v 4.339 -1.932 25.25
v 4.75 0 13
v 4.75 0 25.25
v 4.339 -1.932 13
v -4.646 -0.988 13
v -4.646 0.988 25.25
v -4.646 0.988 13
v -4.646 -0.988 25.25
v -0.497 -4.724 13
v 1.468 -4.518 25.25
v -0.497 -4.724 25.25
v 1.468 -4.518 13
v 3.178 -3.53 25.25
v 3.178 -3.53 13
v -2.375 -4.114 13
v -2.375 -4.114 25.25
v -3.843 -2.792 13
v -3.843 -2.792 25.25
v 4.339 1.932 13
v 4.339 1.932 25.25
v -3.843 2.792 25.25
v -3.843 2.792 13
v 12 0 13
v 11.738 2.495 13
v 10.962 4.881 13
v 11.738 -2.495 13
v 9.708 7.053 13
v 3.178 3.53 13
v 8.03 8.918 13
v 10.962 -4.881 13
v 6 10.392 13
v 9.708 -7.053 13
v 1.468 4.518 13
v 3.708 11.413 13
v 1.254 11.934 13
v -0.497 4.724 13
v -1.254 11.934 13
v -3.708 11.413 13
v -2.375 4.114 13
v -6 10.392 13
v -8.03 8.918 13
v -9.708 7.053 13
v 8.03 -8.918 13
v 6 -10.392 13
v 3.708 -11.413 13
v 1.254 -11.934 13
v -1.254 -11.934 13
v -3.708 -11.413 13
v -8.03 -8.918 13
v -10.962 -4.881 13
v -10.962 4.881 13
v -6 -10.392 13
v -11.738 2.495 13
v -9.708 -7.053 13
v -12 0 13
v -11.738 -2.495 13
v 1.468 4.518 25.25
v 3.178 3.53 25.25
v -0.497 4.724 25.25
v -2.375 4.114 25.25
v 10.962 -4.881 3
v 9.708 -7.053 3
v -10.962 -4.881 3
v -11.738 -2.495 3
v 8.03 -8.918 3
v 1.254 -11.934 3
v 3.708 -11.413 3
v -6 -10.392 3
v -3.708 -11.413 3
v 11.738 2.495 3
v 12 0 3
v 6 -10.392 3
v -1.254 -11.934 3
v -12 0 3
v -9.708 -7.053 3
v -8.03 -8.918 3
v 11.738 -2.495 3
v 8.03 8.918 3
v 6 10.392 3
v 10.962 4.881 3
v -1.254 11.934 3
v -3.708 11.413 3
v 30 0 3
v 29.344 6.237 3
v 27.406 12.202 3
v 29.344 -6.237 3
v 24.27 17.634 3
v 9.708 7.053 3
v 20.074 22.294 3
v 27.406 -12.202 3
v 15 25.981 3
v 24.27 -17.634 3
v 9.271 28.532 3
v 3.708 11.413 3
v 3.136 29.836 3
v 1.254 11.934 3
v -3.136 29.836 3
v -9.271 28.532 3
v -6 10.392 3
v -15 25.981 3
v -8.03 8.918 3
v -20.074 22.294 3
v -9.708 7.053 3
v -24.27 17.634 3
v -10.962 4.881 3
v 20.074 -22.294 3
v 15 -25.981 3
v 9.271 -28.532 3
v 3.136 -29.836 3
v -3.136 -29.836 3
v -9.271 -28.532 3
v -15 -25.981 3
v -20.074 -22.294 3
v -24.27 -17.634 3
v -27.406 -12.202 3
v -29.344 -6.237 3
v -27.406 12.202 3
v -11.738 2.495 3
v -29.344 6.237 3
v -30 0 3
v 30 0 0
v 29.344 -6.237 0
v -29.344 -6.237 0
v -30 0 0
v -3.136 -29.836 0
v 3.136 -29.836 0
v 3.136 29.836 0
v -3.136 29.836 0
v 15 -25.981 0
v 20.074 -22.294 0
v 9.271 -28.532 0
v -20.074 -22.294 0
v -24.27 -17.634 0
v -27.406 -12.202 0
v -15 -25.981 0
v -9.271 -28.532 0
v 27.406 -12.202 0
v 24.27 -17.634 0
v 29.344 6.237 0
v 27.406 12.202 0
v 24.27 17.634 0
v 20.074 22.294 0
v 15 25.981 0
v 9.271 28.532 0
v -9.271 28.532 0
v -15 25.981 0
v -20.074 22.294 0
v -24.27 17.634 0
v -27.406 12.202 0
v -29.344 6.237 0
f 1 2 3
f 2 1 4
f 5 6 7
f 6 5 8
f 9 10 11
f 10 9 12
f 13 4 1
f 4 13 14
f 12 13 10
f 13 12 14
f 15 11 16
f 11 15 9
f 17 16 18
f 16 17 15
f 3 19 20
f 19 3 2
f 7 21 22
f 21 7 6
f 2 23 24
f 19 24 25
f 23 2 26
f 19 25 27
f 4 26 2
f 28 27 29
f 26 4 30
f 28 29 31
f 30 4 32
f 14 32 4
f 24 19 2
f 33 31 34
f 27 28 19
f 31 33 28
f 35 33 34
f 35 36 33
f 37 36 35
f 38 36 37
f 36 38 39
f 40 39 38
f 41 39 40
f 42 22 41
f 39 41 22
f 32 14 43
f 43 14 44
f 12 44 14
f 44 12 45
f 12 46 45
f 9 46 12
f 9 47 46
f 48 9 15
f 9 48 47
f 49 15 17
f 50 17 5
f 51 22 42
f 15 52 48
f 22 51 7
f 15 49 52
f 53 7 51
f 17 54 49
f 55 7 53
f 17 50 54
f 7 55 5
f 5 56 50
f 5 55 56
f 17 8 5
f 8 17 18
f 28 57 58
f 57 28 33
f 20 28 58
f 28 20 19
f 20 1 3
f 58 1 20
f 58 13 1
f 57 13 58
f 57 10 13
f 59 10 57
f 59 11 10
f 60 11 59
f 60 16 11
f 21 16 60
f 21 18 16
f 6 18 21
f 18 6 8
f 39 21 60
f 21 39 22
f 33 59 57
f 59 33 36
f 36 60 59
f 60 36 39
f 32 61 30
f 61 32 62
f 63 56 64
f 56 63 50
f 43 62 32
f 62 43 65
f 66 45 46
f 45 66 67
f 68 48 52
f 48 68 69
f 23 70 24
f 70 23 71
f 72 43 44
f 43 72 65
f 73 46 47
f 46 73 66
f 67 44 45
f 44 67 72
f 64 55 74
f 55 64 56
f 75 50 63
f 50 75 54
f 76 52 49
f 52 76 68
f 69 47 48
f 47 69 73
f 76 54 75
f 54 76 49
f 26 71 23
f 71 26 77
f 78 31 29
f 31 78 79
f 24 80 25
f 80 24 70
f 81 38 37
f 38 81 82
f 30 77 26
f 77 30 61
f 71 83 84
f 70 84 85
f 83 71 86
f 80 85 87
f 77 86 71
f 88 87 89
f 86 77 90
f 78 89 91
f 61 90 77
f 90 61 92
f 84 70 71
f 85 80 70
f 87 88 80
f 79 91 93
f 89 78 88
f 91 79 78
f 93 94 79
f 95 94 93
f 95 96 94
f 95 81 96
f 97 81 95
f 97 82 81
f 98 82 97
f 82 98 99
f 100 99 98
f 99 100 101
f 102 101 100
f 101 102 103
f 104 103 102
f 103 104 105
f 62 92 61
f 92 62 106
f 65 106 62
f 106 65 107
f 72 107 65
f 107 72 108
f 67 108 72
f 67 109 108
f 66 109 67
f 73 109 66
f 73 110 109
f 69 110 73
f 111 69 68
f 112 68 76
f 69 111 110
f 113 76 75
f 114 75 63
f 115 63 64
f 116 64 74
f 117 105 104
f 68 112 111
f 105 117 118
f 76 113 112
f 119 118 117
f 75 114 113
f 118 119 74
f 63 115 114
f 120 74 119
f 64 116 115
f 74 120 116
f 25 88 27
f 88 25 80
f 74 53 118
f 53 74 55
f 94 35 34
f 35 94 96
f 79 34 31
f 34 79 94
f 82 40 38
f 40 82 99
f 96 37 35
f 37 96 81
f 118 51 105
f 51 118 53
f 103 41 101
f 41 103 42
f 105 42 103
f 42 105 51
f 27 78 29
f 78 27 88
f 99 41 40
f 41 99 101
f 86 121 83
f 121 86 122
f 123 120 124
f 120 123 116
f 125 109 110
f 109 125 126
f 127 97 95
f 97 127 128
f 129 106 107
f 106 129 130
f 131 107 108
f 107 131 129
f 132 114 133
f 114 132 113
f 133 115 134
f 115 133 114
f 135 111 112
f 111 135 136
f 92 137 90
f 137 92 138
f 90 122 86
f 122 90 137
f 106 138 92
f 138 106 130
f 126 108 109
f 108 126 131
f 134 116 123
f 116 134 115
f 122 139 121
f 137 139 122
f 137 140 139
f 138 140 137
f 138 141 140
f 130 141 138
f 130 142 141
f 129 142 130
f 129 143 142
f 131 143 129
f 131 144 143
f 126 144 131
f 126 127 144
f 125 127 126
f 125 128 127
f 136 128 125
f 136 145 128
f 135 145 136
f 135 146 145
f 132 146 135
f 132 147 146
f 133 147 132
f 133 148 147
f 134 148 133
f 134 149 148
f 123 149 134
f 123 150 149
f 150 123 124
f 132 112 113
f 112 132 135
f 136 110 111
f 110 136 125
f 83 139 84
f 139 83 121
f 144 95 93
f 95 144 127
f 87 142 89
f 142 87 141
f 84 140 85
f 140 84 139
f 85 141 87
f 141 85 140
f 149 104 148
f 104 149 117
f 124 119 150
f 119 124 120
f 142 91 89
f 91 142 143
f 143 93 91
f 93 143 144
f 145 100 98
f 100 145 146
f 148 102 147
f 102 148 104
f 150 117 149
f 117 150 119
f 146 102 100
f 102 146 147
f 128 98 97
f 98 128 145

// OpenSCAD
translate([0,0,25.25])
rotate([180,0,0])
union(){
    cylinder(4 + 8.25, 4.75, 4.75);
    translate([0,0,12.25]) cylinder(10, 12, 12);
    translate([0,0,22.25]) cylinder(3, 30, 30);
}
